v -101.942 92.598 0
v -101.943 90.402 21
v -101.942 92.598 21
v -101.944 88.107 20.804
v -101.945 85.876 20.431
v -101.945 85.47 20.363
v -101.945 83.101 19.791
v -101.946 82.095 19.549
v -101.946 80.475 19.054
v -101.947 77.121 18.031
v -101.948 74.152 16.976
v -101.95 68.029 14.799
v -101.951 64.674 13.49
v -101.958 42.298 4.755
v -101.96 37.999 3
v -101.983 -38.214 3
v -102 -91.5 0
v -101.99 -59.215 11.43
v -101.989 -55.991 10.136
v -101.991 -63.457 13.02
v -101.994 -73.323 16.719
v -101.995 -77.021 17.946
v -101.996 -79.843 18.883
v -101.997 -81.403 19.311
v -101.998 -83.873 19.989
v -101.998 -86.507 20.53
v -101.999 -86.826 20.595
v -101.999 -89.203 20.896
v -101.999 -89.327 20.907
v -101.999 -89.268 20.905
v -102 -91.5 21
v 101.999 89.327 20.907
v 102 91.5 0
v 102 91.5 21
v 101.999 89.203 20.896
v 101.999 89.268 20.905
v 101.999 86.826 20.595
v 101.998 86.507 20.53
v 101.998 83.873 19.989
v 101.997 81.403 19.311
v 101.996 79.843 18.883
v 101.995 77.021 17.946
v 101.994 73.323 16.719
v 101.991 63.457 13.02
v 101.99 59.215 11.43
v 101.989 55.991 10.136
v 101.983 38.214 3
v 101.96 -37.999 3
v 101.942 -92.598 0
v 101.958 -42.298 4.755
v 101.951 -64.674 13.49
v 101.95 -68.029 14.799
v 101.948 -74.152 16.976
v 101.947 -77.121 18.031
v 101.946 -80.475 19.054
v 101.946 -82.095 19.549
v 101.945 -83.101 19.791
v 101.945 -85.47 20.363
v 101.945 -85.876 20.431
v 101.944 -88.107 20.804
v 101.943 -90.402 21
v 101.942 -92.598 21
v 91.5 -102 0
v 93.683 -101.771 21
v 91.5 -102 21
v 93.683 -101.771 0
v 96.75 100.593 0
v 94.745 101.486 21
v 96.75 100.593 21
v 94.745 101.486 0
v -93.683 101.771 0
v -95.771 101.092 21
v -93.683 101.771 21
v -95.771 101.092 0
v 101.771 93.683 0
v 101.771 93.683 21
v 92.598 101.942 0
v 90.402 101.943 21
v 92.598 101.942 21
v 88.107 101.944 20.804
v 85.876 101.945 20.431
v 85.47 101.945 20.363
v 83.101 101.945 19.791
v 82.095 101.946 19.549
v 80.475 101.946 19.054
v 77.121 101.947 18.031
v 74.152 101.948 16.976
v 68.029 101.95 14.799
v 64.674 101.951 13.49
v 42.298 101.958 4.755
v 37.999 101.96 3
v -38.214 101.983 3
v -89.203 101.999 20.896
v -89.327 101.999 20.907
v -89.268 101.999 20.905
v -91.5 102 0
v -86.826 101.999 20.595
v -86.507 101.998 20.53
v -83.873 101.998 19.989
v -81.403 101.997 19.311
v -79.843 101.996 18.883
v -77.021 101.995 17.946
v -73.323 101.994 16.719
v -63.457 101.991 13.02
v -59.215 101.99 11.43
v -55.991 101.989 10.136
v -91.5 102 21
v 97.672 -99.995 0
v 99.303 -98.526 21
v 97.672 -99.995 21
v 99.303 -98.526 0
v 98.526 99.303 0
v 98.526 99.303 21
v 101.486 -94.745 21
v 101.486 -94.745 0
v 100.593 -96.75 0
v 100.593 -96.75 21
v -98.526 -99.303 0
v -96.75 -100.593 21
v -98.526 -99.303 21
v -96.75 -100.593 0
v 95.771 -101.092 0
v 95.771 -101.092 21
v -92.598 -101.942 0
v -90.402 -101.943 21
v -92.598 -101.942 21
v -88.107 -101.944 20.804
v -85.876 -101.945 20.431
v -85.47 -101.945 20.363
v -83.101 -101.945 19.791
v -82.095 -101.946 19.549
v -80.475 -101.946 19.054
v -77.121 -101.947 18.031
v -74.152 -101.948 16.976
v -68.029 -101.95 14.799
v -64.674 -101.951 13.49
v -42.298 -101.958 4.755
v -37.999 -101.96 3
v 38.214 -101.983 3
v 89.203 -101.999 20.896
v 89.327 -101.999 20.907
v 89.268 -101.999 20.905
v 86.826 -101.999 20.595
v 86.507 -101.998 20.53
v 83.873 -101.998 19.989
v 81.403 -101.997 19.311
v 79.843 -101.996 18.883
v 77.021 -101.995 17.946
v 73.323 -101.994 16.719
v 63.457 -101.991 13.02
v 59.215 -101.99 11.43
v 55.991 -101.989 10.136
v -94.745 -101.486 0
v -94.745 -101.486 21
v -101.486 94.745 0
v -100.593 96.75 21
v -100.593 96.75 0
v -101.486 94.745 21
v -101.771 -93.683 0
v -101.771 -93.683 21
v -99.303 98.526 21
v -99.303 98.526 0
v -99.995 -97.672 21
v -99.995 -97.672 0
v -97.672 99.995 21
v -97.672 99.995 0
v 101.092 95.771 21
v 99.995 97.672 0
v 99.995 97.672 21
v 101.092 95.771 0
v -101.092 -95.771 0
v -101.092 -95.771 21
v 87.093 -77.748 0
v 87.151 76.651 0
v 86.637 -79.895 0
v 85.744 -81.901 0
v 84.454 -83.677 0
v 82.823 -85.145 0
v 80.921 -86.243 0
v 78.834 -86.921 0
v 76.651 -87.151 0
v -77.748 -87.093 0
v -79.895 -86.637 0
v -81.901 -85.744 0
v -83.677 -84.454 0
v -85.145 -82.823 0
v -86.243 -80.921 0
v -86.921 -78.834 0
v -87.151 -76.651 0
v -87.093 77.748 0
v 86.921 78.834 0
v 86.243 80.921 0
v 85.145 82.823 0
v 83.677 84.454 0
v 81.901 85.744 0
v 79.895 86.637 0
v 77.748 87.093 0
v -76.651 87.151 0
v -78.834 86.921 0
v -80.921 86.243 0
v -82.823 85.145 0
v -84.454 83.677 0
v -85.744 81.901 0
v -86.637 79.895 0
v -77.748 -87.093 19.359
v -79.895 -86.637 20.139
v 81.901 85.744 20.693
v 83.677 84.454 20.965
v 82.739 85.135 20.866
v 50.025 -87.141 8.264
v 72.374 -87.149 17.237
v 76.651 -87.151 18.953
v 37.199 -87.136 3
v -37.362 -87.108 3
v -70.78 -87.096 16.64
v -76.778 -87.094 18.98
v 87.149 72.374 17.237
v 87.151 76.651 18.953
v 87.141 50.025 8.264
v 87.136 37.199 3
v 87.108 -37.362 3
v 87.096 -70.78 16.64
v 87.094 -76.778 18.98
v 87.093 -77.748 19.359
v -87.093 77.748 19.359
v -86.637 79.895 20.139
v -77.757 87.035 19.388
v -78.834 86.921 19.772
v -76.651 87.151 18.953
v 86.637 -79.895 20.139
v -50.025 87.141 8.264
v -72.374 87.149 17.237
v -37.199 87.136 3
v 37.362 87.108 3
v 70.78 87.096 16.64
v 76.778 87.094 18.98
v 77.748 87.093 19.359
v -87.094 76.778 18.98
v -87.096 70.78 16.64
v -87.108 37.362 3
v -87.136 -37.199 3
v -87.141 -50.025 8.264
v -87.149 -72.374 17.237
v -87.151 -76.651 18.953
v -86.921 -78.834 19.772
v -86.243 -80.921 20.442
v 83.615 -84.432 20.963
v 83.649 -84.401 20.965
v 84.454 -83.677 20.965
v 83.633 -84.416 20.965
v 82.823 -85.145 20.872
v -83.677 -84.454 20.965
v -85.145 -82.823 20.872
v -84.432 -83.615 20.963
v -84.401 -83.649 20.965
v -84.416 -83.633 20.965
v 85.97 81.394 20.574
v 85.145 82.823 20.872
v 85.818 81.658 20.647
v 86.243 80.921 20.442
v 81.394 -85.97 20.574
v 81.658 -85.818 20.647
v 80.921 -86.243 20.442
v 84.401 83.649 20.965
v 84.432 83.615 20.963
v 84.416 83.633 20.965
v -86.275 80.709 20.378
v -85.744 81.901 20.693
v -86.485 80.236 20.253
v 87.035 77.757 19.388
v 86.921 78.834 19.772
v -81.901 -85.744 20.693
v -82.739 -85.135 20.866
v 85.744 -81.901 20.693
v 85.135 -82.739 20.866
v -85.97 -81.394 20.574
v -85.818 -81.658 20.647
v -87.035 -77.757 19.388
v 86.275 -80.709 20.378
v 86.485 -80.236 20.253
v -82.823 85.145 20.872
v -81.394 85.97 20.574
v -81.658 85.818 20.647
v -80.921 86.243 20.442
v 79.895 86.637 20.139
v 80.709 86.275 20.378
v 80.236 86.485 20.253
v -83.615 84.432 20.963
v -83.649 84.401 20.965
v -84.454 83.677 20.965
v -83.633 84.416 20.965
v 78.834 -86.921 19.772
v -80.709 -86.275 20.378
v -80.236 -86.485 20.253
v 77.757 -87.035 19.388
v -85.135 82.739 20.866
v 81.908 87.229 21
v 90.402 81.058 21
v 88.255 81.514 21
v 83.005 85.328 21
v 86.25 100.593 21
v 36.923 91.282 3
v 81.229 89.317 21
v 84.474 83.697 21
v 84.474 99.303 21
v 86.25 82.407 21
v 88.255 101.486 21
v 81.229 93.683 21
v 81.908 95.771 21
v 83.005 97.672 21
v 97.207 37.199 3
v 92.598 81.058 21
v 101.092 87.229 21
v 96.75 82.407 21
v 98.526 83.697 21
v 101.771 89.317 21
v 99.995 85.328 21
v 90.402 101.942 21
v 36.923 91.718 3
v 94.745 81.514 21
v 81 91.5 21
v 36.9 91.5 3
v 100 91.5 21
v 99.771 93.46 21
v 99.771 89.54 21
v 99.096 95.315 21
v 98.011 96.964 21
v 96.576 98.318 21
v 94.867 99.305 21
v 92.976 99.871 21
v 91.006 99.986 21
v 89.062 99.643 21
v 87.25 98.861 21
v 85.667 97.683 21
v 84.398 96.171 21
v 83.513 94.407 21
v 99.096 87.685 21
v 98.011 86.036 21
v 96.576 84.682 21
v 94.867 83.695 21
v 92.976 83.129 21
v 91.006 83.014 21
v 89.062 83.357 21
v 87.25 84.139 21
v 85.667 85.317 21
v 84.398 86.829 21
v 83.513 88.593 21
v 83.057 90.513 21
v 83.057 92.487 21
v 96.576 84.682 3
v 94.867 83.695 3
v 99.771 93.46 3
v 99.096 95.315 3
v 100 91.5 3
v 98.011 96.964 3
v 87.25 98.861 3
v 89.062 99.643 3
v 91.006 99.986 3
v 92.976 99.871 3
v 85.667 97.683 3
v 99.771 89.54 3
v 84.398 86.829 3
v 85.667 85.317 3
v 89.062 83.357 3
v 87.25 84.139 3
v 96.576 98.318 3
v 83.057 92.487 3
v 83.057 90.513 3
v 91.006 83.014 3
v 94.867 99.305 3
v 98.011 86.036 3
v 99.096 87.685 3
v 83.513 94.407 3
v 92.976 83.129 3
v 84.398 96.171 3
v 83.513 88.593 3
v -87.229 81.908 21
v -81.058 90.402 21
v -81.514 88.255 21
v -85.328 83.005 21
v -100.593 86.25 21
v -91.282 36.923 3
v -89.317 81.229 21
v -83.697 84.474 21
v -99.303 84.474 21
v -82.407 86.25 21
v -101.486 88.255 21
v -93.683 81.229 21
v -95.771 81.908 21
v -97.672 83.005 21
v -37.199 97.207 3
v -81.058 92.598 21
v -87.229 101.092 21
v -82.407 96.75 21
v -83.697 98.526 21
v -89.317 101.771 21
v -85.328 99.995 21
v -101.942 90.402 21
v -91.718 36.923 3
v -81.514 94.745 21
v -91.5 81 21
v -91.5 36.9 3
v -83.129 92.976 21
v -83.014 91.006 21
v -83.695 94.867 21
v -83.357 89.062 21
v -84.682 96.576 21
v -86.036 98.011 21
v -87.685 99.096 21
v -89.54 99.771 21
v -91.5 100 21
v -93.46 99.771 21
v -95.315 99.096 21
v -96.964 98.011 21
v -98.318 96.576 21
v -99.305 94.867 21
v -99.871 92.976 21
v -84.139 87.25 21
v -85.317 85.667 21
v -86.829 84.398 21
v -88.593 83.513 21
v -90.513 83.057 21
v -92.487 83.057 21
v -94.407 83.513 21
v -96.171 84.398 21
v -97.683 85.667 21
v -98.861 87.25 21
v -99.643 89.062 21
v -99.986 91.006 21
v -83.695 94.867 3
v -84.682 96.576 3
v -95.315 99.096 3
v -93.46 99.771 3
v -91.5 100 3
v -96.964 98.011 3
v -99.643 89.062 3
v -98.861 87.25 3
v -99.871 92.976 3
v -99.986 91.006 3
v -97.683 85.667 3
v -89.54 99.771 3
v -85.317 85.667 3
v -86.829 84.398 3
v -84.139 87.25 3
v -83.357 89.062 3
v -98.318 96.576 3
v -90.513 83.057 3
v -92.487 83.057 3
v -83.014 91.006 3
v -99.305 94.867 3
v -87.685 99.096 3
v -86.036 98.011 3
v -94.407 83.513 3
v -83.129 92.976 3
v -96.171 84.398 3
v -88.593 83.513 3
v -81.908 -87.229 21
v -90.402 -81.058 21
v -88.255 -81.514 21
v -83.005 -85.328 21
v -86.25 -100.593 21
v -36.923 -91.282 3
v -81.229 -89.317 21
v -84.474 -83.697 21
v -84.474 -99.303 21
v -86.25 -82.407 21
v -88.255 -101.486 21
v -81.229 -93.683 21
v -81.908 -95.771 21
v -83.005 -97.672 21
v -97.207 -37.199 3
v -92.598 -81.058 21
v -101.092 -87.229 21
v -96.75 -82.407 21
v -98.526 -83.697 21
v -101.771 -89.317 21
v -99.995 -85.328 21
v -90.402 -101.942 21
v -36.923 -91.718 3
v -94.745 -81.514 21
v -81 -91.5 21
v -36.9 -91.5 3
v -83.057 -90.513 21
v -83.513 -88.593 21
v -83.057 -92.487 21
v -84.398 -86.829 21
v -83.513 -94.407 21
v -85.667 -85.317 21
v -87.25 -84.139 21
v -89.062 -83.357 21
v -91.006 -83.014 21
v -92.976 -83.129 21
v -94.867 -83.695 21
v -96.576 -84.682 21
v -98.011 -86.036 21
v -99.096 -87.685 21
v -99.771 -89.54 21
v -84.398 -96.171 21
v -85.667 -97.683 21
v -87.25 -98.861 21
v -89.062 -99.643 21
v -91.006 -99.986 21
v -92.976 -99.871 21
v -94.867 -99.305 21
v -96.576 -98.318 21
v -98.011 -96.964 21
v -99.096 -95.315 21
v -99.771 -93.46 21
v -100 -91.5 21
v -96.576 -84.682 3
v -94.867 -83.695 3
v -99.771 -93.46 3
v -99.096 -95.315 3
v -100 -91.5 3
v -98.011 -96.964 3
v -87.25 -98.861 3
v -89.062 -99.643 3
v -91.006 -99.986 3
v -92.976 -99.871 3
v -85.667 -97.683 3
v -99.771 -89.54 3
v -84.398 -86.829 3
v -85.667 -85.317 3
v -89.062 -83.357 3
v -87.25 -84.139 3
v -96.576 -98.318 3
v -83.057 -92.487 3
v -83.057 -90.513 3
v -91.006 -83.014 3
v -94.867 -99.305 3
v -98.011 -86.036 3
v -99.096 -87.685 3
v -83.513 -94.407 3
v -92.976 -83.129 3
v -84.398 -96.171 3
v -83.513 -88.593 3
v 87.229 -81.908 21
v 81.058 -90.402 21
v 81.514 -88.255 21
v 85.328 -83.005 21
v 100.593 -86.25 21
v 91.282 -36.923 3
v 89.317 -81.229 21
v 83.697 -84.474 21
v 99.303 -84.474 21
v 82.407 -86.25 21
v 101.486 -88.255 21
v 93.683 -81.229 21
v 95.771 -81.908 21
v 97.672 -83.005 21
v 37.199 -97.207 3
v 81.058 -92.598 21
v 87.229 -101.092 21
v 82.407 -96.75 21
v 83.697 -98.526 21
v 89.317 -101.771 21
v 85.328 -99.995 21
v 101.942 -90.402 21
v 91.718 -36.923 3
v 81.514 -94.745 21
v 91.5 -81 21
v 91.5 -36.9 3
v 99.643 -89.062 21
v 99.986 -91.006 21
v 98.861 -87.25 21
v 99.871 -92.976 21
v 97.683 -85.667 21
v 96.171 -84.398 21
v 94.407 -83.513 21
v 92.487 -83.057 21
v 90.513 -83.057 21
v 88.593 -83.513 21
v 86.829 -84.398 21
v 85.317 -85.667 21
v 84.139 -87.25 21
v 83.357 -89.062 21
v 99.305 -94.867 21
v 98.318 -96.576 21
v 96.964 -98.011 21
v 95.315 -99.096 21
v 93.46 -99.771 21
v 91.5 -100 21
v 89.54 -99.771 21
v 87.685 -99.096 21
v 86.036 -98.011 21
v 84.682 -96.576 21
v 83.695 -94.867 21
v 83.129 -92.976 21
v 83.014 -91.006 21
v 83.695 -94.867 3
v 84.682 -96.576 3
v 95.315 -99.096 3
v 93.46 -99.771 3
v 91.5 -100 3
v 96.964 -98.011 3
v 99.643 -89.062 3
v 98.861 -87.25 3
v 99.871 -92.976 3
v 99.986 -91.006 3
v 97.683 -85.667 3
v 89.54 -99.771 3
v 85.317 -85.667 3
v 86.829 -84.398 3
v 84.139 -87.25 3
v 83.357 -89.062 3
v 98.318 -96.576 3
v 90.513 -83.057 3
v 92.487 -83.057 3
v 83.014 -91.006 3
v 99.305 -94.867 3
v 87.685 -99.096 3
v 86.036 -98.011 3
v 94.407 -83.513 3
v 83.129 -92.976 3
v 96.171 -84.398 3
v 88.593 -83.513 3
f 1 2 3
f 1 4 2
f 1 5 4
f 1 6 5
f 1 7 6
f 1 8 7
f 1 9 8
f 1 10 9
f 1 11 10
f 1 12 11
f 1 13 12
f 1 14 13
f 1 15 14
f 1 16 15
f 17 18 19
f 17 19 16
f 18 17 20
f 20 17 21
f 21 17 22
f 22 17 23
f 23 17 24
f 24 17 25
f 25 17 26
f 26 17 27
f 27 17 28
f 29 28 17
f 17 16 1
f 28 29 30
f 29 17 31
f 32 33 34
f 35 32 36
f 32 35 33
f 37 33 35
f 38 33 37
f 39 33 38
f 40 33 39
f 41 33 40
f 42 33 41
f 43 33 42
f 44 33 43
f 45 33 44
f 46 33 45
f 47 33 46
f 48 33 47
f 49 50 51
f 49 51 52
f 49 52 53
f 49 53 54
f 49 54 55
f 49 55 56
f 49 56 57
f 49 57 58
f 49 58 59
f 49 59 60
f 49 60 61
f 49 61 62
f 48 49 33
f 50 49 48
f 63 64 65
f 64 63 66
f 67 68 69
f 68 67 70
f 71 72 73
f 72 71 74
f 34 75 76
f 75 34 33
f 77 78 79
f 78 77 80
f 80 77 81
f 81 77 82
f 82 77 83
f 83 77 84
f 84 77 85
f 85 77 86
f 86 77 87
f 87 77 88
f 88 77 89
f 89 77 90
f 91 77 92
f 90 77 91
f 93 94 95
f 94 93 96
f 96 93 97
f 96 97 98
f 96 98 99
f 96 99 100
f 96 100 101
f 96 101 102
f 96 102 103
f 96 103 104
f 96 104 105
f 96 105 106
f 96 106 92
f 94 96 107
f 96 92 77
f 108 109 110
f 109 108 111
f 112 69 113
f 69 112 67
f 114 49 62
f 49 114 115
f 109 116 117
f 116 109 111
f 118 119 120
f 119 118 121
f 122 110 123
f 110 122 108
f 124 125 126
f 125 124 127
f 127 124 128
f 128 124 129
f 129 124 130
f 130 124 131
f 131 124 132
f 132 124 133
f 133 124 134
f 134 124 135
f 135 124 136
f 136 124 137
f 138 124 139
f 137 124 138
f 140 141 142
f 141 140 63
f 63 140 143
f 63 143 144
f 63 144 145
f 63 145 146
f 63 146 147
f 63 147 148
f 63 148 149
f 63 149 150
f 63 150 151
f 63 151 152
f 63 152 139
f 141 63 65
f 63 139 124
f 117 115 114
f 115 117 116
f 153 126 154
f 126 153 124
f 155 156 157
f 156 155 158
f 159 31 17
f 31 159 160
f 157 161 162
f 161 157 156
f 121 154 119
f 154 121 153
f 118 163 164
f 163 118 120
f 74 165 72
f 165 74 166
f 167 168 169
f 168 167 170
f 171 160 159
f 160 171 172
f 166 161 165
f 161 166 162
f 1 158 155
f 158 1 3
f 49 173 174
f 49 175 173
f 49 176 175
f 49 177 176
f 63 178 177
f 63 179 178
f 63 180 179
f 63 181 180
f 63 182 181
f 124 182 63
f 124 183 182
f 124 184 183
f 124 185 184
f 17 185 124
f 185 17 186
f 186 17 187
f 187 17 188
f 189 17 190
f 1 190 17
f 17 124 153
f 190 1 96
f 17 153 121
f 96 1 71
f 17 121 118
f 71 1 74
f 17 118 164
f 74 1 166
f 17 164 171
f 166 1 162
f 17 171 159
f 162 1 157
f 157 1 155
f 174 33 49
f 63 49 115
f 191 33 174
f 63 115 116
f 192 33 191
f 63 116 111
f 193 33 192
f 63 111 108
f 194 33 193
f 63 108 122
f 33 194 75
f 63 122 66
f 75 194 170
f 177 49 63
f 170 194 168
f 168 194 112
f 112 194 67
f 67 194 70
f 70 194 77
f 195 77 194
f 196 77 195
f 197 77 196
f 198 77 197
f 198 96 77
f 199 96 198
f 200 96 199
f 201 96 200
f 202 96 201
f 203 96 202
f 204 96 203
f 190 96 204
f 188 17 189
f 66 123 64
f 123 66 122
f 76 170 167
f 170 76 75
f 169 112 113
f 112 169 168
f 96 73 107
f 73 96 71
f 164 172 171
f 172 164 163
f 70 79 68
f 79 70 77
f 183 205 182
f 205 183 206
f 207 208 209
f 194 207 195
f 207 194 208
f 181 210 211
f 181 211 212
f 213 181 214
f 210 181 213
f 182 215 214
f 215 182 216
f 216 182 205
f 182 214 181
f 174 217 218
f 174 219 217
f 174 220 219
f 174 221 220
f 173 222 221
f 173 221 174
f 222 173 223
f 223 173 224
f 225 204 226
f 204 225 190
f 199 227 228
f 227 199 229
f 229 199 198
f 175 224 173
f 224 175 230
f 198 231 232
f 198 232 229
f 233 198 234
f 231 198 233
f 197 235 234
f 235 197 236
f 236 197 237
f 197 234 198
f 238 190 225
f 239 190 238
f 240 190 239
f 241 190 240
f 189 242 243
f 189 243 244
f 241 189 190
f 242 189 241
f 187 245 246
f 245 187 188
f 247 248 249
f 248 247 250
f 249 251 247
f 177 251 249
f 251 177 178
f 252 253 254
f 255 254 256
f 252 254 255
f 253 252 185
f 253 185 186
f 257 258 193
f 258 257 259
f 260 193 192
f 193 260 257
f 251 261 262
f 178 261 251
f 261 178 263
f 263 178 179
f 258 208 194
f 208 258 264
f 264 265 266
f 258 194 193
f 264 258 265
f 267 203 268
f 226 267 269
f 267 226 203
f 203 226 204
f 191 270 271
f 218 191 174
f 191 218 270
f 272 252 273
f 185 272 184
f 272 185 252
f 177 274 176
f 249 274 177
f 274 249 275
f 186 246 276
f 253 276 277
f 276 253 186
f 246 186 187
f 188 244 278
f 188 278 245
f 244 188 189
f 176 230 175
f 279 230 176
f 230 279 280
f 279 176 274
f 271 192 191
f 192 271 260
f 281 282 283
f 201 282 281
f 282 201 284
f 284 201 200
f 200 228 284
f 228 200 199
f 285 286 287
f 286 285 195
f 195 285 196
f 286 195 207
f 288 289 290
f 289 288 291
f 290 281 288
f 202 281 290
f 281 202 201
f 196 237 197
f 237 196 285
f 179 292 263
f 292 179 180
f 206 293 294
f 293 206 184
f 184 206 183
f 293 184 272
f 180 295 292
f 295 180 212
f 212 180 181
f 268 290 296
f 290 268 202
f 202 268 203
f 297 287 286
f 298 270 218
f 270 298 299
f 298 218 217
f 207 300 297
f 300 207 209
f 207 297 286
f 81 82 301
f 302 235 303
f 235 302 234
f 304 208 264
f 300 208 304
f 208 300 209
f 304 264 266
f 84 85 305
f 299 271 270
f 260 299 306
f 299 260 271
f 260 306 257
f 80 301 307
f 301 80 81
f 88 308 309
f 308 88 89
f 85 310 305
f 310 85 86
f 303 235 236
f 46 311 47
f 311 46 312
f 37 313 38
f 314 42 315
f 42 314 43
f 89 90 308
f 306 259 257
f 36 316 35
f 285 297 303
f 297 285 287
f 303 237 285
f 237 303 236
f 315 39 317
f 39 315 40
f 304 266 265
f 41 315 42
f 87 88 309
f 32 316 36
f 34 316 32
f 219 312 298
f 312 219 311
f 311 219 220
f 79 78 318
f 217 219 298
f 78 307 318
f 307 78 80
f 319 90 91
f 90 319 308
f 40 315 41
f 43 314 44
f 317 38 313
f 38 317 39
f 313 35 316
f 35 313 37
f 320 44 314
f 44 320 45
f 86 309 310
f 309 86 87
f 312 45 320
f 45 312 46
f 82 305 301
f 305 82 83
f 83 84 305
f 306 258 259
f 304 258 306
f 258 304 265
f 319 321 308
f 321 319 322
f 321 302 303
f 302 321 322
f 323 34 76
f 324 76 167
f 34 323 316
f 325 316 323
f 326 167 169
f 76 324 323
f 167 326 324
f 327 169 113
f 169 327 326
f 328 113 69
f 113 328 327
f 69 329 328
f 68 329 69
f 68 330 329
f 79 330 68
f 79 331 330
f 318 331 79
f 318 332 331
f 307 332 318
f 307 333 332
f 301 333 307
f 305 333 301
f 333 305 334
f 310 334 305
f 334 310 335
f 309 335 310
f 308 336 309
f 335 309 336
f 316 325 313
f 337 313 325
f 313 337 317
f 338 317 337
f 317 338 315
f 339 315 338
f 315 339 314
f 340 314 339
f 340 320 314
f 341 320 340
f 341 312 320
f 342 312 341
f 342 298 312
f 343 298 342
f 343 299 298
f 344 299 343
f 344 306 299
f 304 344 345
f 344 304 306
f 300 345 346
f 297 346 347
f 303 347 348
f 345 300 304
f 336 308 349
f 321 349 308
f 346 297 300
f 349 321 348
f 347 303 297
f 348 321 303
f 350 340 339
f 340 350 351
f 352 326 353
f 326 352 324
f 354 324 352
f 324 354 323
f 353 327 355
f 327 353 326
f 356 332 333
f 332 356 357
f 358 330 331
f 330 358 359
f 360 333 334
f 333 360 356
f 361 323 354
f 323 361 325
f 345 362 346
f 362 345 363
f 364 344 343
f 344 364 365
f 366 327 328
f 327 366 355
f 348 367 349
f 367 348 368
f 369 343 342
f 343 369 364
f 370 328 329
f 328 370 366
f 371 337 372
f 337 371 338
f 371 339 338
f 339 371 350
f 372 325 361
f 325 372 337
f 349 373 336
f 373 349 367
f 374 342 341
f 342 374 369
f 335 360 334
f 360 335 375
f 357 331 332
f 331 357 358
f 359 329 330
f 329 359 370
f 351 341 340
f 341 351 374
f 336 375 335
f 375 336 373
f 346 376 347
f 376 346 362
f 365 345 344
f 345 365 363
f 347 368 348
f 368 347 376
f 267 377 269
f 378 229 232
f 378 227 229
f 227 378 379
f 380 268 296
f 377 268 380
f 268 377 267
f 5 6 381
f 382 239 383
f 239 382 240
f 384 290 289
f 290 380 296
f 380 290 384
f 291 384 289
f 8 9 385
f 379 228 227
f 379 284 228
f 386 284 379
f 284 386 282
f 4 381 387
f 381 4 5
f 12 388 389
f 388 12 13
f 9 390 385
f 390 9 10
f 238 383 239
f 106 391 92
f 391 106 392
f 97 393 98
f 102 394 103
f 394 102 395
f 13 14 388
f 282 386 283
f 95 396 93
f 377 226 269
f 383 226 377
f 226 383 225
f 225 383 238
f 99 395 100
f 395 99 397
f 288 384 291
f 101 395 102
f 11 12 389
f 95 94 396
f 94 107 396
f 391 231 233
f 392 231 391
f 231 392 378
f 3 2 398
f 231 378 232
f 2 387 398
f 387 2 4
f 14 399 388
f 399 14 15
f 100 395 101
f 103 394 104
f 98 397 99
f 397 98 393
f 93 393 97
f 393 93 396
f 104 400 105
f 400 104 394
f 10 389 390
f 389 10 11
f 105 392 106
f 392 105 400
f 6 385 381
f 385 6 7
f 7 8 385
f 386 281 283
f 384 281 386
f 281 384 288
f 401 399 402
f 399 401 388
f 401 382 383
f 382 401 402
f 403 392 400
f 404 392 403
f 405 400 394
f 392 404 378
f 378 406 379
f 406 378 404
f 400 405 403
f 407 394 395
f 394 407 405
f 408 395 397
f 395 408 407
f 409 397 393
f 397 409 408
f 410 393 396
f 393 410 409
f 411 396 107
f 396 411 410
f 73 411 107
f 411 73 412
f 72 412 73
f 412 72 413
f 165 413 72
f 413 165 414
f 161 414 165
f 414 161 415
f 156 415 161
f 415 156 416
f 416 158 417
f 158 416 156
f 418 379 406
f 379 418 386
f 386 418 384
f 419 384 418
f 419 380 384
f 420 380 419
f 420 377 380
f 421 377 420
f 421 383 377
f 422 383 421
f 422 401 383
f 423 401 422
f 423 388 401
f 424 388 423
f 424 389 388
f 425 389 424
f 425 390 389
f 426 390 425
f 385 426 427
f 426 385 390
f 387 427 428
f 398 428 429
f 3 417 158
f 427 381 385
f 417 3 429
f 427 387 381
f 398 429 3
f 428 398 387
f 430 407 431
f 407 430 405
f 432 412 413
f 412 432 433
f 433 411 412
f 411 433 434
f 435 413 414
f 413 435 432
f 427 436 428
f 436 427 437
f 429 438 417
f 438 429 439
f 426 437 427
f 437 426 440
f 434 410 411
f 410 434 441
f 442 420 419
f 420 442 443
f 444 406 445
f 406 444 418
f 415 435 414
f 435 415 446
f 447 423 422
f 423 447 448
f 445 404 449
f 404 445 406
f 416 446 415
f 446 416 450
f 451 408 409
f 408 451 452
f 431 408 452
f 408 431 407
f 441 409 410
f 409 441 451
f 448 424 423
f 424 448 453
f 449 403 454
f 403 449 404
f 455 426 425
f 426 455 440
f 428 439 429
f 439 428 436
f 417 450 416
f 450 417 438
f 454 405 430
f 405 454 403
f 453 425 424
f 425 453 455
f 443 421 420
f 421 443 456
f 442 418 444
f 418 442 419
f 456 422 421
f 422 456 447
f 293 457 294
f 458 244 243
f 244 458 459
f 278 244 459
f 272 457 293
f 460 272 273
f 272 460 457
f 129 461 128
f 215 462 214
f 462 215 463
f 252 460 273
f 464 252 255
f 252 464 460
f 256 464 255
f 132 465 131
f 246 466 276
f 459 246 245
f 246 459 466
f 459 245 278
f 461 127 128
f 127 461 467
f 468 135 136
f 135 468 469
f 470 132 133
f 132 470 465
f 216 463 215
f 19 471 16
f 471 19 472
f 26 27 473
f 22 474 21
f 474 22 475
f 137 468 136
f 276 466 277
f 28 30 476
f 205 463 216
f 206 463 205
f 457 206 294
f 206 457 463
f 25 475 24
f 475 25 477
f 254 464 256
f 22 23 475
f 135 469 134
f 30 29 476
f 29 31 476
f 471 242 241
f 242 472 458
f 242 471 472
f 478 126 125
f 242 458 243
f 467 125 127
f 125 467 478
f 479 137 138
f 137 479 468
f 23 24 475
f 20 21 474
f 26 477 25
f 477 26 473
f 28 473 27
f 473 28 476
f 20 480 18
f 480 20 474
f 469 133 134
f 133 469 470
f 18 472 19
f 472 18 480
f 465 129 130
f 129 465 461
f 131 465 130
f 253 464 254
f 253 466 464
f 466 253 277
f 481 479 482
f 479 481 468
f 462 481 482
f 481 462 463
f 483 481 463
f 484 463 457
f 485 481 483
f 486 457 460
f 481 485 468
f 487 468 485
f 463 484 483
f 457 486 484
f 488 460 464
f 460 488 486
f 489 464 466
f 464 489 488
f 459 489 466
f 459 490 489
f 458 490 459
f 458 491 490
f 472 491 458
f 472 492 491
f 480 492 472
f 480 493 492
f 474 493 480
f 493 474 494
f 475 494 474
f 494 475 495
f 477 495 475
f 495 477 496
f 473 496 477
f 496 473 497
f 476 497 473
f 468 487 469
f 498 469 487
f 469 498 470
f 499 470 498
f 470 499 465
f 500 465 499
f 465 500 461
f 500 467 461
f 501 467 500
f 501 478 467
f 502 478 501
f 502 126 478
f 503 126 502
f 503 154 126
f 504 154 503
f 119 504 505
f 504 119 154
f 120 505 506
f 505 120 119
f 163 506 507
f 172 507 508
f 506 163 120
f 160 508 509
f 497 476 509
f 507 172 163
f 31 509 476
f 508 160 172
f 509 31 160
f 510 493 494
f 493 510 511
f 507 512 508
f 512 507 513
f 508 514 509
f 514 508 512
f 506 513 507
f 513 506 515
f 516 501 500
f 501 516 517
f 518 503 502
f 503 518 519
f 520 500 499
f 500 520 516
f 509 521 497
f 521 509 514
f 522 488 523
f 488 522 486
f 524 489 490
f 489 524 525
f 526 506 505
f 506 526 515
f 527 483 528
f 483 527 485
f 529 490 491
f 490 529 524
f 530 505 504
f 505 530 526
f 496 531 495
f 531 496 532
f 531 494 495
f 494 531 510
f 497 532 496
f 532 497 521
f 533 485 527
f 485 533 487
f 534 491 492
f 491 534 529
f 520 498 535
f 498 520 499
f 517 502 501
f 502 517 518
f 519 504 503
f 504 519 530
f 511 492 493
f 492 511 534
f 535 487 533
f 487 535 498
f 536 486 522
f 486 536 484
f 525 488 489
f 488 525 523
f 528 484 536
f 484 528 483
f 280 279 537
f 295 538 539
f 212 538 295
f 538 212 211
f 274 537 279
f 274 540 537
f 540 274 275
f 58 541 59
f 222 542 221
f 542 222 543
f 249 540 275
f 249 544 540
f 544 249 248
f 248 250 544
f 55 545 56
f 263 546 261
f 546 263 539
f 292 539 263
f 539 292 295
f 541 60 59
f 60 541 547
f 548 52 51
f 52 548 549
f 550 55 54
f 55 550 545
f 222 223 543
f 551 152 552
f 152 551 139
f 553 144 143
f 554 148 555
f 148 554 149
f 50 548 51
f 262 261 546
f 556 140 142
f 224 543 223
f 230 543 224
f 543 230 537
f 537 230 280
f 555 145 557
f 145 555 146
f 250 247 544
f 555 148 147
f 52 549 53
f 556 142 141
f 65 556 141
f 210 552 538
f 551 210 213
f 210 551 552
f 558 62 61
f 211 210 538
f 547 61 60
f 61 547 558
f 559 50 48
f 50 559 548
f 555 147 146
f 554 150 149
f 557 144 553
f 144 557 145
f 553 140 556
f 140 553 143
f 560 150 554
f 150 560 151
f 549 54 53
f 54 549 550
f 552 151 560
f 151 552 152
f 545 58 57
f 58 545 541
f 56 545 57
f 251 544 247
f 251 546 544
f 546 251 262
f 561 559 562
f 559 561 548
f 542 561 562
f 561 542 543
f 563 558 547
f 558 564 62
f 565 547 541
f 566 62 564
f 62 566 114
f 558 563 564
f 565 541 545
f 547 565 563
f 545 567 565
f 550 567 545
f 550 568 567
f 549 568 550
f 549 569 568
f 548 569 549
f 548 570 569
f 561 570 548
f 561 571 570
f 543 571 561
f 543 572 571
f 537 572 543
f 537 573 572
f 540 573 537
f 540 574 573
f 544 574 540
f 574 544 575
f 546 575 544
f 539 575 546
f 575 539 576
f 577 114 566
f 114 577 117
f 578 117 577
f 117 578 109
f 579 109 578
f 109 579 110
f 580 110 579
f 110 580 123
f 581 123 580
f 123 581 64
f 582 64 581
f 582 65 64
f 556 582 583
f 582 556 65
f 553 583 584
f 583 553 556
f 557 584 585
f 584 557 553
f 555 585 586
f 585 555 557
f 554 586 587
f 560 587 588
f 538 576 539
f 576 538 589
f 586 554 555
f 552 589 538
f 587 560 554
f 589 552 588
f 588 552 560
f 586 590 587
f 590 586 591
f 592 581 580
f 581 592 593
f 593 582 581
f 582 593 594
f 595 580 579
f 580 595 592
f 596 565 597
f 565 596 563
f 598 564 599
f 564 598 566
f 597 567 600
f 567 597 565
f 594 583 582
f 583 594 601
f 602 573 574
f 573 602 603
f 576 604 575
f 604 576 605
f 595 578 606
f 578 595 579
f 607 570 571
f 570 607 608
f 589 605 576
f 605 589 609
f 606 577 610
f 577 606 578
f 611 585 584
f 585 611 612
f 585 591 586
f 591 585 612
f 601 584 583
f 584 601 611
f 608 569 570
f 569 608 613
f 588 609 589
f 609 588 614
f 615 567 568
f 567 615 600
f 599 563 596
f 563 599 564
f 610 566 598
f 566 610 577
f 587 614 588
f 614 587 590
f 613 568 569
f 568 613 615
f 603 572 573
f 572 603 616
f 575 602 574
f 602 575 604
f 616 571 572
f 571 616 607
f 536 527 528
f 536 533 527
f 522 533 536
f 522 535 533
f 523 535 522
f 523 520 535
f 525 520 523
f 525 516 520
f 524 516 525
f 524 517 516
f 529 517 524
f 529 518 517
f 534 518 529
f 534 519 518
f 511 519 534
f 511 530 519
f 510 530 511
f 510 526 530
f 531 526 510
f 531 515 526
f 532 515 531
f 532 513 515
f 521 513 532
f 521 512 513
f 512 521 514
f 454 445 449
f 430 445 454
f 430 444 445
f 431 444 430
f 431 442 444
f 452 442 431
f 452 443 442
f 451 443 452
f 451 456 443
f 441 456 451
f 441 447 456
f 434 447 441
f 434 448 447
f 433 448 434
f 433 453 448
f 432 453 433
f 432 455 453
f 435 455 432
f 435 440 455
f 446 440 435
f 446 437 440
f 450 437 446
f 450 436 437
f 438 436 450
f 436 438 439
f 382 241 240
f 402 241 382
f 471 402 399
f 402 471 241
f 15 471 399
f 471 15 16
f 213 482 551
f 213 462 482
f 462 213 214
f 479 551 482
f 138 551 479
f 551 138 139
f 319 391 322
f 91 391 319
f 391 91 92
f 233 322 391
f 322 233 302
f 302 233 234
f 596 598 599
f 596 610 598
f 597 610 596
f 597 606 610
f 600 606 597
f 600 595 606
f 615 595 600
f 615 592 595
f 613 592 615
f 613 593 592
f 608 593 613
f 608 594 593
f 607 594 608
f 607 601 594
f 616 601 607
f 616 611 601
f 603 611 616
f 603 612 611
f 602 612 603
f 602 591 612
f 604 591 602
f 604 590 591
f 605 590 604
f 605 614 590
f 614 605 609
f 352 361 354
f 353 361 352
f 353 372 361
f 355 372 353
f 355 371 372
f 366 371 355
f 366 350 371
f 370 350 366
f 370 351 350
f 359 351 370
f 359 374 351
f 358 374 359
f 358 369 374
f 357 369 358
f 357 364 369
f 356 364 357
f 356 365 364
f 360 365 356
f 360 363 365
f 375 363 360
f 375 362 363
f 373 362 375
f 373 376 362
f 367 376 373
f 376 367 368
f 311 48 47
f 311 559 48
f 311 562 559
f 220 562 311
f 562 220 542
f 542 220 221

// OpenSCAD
// Table/Seat Post Mount
// By Brian Khuu (May 2023)
// Design Context: Wanted to mount a small flat wood top to a collapsable table post
//                 Note that the table post has cross braces so this design is mostly there to keep 
//                 the post aligned to the center of the table.
//                 This will be glued to the wood table top and the post would be slotted in.

/*
    |<-- post_slot_to_post_slot -->|
   (X)............................(X)
    :                              :
    :                              :
    :                              :
    :                              :
    :                              :
    :                              :
    :                              :
    :                              :
    :                              :
    :                              :
    :                              :
   (X)............................(X)
*/

// Mount Base Thickness
base_thickness = 3;

// Post Diamater
post_slot_dia=17;

// Distance between edge of one post to the other edge of the post
post_slot_to_post_slot_from_edge_to_edge = 200;

// Post slot height
post_slot_height = 20;

// Post slot wall thickness (Top)
post_slot_wall_top_thickness = 2;

// Distance between centerpoint of each post
post_slot_to_post_slot = post_slot_to_post_slot_from_edge_to_edge - post_slot_dia;

// Post slot wall thickness (Bottom)
post_slot_wall_base_thickness = post_slot_to_post_slot/2;

module post_to_tabletop_slot(post_slot_dia, post_slot_to_post_slot, base_thickness, post_slot_height, post_slot_wall_top_thickness, post_slot_wall_base_thickness)
{
    post_slot_wall_top_diameter = post_slot_wall_top_thickness*2 + post_slot_dia;
    post_slot_wall_base_diameter = post_slot_wall_base_thickness*2 + post_slot_dia;
    
    intersection()
    {
        // Bulk
        difference()
        {
            hull()
            {
                for (i=[0:1:3])
                    rotate([0,0,90*i])
                        translate([post_slot_to_post_slot/2, post_slot_to_post_slot/2,0])
                            cylinder(d=post_slot_wall_top_diameter, h=base_thickness+post_slot_height);
            }    
            hull()
            {
                distXYOffset=(post_slot_wall_top_diameter/2)*cos(45);
                for (i=[0:1:3])
                    rotate([0,0,90*i])
                        translate([post_slot_to_post_slot/2-distXYOffset*2, post_slot_to_post_slot/2-distXYOffset*2,-0.1])
                            cylinder(d=post_slot_wall_top_diameter, h=base_thickness+post_slot_height+1);
            }
        }
        
        union()
        {
            // Base
            translate([0,0,base_thickness/2])
                cube([post_slot_to_post_slot+post_slot_wall_base_diameter,post_slot_to_post_slot+post_slot_wall_base_diameter, base_thickness], center=true);
            
            // Slot
            for (i=[0:1:3])
                rotate([0,0,90*i])
                    translate([post_slot_to_post_slot/2, post_slot_to_post_slot/2,1])
                        difference()
                        {
                            cylinder(d1=post_slot_wall_base_diameter, d2=post_slot_wall_top_diameter, h=post_slot_height);
                            cylinder(d=post_slot_dia, h=post_slot_height+0.1);
                        }
        }
    }
}

if (1)
{
    // Use
    post_to_tabletop_slot(
        post_slot_dia=post_slot_dia,
        post_slot_to_post_slot=post_slot_to_post_slot,
        base_thickness=base_thickness,
        post_slot_height=post_slot_height,
        post_slot_wall_top_thickness=post_slot_wall_top_thickness, 
        post_slot_wall_base_thickness=post_slot_dia*3);
}
else
{
    // Test
    post_to_tabletop_slot(
        post_slot_dia=post_slot_dia,
        post_slot_to_post_slot=post_slot_to_post_slot,
        base_thickness=0.5,
        post_slot_height=5,
        post_slot_wall_top_thickness=1, 
        post_slot_wall_base_thickness=1);
}
